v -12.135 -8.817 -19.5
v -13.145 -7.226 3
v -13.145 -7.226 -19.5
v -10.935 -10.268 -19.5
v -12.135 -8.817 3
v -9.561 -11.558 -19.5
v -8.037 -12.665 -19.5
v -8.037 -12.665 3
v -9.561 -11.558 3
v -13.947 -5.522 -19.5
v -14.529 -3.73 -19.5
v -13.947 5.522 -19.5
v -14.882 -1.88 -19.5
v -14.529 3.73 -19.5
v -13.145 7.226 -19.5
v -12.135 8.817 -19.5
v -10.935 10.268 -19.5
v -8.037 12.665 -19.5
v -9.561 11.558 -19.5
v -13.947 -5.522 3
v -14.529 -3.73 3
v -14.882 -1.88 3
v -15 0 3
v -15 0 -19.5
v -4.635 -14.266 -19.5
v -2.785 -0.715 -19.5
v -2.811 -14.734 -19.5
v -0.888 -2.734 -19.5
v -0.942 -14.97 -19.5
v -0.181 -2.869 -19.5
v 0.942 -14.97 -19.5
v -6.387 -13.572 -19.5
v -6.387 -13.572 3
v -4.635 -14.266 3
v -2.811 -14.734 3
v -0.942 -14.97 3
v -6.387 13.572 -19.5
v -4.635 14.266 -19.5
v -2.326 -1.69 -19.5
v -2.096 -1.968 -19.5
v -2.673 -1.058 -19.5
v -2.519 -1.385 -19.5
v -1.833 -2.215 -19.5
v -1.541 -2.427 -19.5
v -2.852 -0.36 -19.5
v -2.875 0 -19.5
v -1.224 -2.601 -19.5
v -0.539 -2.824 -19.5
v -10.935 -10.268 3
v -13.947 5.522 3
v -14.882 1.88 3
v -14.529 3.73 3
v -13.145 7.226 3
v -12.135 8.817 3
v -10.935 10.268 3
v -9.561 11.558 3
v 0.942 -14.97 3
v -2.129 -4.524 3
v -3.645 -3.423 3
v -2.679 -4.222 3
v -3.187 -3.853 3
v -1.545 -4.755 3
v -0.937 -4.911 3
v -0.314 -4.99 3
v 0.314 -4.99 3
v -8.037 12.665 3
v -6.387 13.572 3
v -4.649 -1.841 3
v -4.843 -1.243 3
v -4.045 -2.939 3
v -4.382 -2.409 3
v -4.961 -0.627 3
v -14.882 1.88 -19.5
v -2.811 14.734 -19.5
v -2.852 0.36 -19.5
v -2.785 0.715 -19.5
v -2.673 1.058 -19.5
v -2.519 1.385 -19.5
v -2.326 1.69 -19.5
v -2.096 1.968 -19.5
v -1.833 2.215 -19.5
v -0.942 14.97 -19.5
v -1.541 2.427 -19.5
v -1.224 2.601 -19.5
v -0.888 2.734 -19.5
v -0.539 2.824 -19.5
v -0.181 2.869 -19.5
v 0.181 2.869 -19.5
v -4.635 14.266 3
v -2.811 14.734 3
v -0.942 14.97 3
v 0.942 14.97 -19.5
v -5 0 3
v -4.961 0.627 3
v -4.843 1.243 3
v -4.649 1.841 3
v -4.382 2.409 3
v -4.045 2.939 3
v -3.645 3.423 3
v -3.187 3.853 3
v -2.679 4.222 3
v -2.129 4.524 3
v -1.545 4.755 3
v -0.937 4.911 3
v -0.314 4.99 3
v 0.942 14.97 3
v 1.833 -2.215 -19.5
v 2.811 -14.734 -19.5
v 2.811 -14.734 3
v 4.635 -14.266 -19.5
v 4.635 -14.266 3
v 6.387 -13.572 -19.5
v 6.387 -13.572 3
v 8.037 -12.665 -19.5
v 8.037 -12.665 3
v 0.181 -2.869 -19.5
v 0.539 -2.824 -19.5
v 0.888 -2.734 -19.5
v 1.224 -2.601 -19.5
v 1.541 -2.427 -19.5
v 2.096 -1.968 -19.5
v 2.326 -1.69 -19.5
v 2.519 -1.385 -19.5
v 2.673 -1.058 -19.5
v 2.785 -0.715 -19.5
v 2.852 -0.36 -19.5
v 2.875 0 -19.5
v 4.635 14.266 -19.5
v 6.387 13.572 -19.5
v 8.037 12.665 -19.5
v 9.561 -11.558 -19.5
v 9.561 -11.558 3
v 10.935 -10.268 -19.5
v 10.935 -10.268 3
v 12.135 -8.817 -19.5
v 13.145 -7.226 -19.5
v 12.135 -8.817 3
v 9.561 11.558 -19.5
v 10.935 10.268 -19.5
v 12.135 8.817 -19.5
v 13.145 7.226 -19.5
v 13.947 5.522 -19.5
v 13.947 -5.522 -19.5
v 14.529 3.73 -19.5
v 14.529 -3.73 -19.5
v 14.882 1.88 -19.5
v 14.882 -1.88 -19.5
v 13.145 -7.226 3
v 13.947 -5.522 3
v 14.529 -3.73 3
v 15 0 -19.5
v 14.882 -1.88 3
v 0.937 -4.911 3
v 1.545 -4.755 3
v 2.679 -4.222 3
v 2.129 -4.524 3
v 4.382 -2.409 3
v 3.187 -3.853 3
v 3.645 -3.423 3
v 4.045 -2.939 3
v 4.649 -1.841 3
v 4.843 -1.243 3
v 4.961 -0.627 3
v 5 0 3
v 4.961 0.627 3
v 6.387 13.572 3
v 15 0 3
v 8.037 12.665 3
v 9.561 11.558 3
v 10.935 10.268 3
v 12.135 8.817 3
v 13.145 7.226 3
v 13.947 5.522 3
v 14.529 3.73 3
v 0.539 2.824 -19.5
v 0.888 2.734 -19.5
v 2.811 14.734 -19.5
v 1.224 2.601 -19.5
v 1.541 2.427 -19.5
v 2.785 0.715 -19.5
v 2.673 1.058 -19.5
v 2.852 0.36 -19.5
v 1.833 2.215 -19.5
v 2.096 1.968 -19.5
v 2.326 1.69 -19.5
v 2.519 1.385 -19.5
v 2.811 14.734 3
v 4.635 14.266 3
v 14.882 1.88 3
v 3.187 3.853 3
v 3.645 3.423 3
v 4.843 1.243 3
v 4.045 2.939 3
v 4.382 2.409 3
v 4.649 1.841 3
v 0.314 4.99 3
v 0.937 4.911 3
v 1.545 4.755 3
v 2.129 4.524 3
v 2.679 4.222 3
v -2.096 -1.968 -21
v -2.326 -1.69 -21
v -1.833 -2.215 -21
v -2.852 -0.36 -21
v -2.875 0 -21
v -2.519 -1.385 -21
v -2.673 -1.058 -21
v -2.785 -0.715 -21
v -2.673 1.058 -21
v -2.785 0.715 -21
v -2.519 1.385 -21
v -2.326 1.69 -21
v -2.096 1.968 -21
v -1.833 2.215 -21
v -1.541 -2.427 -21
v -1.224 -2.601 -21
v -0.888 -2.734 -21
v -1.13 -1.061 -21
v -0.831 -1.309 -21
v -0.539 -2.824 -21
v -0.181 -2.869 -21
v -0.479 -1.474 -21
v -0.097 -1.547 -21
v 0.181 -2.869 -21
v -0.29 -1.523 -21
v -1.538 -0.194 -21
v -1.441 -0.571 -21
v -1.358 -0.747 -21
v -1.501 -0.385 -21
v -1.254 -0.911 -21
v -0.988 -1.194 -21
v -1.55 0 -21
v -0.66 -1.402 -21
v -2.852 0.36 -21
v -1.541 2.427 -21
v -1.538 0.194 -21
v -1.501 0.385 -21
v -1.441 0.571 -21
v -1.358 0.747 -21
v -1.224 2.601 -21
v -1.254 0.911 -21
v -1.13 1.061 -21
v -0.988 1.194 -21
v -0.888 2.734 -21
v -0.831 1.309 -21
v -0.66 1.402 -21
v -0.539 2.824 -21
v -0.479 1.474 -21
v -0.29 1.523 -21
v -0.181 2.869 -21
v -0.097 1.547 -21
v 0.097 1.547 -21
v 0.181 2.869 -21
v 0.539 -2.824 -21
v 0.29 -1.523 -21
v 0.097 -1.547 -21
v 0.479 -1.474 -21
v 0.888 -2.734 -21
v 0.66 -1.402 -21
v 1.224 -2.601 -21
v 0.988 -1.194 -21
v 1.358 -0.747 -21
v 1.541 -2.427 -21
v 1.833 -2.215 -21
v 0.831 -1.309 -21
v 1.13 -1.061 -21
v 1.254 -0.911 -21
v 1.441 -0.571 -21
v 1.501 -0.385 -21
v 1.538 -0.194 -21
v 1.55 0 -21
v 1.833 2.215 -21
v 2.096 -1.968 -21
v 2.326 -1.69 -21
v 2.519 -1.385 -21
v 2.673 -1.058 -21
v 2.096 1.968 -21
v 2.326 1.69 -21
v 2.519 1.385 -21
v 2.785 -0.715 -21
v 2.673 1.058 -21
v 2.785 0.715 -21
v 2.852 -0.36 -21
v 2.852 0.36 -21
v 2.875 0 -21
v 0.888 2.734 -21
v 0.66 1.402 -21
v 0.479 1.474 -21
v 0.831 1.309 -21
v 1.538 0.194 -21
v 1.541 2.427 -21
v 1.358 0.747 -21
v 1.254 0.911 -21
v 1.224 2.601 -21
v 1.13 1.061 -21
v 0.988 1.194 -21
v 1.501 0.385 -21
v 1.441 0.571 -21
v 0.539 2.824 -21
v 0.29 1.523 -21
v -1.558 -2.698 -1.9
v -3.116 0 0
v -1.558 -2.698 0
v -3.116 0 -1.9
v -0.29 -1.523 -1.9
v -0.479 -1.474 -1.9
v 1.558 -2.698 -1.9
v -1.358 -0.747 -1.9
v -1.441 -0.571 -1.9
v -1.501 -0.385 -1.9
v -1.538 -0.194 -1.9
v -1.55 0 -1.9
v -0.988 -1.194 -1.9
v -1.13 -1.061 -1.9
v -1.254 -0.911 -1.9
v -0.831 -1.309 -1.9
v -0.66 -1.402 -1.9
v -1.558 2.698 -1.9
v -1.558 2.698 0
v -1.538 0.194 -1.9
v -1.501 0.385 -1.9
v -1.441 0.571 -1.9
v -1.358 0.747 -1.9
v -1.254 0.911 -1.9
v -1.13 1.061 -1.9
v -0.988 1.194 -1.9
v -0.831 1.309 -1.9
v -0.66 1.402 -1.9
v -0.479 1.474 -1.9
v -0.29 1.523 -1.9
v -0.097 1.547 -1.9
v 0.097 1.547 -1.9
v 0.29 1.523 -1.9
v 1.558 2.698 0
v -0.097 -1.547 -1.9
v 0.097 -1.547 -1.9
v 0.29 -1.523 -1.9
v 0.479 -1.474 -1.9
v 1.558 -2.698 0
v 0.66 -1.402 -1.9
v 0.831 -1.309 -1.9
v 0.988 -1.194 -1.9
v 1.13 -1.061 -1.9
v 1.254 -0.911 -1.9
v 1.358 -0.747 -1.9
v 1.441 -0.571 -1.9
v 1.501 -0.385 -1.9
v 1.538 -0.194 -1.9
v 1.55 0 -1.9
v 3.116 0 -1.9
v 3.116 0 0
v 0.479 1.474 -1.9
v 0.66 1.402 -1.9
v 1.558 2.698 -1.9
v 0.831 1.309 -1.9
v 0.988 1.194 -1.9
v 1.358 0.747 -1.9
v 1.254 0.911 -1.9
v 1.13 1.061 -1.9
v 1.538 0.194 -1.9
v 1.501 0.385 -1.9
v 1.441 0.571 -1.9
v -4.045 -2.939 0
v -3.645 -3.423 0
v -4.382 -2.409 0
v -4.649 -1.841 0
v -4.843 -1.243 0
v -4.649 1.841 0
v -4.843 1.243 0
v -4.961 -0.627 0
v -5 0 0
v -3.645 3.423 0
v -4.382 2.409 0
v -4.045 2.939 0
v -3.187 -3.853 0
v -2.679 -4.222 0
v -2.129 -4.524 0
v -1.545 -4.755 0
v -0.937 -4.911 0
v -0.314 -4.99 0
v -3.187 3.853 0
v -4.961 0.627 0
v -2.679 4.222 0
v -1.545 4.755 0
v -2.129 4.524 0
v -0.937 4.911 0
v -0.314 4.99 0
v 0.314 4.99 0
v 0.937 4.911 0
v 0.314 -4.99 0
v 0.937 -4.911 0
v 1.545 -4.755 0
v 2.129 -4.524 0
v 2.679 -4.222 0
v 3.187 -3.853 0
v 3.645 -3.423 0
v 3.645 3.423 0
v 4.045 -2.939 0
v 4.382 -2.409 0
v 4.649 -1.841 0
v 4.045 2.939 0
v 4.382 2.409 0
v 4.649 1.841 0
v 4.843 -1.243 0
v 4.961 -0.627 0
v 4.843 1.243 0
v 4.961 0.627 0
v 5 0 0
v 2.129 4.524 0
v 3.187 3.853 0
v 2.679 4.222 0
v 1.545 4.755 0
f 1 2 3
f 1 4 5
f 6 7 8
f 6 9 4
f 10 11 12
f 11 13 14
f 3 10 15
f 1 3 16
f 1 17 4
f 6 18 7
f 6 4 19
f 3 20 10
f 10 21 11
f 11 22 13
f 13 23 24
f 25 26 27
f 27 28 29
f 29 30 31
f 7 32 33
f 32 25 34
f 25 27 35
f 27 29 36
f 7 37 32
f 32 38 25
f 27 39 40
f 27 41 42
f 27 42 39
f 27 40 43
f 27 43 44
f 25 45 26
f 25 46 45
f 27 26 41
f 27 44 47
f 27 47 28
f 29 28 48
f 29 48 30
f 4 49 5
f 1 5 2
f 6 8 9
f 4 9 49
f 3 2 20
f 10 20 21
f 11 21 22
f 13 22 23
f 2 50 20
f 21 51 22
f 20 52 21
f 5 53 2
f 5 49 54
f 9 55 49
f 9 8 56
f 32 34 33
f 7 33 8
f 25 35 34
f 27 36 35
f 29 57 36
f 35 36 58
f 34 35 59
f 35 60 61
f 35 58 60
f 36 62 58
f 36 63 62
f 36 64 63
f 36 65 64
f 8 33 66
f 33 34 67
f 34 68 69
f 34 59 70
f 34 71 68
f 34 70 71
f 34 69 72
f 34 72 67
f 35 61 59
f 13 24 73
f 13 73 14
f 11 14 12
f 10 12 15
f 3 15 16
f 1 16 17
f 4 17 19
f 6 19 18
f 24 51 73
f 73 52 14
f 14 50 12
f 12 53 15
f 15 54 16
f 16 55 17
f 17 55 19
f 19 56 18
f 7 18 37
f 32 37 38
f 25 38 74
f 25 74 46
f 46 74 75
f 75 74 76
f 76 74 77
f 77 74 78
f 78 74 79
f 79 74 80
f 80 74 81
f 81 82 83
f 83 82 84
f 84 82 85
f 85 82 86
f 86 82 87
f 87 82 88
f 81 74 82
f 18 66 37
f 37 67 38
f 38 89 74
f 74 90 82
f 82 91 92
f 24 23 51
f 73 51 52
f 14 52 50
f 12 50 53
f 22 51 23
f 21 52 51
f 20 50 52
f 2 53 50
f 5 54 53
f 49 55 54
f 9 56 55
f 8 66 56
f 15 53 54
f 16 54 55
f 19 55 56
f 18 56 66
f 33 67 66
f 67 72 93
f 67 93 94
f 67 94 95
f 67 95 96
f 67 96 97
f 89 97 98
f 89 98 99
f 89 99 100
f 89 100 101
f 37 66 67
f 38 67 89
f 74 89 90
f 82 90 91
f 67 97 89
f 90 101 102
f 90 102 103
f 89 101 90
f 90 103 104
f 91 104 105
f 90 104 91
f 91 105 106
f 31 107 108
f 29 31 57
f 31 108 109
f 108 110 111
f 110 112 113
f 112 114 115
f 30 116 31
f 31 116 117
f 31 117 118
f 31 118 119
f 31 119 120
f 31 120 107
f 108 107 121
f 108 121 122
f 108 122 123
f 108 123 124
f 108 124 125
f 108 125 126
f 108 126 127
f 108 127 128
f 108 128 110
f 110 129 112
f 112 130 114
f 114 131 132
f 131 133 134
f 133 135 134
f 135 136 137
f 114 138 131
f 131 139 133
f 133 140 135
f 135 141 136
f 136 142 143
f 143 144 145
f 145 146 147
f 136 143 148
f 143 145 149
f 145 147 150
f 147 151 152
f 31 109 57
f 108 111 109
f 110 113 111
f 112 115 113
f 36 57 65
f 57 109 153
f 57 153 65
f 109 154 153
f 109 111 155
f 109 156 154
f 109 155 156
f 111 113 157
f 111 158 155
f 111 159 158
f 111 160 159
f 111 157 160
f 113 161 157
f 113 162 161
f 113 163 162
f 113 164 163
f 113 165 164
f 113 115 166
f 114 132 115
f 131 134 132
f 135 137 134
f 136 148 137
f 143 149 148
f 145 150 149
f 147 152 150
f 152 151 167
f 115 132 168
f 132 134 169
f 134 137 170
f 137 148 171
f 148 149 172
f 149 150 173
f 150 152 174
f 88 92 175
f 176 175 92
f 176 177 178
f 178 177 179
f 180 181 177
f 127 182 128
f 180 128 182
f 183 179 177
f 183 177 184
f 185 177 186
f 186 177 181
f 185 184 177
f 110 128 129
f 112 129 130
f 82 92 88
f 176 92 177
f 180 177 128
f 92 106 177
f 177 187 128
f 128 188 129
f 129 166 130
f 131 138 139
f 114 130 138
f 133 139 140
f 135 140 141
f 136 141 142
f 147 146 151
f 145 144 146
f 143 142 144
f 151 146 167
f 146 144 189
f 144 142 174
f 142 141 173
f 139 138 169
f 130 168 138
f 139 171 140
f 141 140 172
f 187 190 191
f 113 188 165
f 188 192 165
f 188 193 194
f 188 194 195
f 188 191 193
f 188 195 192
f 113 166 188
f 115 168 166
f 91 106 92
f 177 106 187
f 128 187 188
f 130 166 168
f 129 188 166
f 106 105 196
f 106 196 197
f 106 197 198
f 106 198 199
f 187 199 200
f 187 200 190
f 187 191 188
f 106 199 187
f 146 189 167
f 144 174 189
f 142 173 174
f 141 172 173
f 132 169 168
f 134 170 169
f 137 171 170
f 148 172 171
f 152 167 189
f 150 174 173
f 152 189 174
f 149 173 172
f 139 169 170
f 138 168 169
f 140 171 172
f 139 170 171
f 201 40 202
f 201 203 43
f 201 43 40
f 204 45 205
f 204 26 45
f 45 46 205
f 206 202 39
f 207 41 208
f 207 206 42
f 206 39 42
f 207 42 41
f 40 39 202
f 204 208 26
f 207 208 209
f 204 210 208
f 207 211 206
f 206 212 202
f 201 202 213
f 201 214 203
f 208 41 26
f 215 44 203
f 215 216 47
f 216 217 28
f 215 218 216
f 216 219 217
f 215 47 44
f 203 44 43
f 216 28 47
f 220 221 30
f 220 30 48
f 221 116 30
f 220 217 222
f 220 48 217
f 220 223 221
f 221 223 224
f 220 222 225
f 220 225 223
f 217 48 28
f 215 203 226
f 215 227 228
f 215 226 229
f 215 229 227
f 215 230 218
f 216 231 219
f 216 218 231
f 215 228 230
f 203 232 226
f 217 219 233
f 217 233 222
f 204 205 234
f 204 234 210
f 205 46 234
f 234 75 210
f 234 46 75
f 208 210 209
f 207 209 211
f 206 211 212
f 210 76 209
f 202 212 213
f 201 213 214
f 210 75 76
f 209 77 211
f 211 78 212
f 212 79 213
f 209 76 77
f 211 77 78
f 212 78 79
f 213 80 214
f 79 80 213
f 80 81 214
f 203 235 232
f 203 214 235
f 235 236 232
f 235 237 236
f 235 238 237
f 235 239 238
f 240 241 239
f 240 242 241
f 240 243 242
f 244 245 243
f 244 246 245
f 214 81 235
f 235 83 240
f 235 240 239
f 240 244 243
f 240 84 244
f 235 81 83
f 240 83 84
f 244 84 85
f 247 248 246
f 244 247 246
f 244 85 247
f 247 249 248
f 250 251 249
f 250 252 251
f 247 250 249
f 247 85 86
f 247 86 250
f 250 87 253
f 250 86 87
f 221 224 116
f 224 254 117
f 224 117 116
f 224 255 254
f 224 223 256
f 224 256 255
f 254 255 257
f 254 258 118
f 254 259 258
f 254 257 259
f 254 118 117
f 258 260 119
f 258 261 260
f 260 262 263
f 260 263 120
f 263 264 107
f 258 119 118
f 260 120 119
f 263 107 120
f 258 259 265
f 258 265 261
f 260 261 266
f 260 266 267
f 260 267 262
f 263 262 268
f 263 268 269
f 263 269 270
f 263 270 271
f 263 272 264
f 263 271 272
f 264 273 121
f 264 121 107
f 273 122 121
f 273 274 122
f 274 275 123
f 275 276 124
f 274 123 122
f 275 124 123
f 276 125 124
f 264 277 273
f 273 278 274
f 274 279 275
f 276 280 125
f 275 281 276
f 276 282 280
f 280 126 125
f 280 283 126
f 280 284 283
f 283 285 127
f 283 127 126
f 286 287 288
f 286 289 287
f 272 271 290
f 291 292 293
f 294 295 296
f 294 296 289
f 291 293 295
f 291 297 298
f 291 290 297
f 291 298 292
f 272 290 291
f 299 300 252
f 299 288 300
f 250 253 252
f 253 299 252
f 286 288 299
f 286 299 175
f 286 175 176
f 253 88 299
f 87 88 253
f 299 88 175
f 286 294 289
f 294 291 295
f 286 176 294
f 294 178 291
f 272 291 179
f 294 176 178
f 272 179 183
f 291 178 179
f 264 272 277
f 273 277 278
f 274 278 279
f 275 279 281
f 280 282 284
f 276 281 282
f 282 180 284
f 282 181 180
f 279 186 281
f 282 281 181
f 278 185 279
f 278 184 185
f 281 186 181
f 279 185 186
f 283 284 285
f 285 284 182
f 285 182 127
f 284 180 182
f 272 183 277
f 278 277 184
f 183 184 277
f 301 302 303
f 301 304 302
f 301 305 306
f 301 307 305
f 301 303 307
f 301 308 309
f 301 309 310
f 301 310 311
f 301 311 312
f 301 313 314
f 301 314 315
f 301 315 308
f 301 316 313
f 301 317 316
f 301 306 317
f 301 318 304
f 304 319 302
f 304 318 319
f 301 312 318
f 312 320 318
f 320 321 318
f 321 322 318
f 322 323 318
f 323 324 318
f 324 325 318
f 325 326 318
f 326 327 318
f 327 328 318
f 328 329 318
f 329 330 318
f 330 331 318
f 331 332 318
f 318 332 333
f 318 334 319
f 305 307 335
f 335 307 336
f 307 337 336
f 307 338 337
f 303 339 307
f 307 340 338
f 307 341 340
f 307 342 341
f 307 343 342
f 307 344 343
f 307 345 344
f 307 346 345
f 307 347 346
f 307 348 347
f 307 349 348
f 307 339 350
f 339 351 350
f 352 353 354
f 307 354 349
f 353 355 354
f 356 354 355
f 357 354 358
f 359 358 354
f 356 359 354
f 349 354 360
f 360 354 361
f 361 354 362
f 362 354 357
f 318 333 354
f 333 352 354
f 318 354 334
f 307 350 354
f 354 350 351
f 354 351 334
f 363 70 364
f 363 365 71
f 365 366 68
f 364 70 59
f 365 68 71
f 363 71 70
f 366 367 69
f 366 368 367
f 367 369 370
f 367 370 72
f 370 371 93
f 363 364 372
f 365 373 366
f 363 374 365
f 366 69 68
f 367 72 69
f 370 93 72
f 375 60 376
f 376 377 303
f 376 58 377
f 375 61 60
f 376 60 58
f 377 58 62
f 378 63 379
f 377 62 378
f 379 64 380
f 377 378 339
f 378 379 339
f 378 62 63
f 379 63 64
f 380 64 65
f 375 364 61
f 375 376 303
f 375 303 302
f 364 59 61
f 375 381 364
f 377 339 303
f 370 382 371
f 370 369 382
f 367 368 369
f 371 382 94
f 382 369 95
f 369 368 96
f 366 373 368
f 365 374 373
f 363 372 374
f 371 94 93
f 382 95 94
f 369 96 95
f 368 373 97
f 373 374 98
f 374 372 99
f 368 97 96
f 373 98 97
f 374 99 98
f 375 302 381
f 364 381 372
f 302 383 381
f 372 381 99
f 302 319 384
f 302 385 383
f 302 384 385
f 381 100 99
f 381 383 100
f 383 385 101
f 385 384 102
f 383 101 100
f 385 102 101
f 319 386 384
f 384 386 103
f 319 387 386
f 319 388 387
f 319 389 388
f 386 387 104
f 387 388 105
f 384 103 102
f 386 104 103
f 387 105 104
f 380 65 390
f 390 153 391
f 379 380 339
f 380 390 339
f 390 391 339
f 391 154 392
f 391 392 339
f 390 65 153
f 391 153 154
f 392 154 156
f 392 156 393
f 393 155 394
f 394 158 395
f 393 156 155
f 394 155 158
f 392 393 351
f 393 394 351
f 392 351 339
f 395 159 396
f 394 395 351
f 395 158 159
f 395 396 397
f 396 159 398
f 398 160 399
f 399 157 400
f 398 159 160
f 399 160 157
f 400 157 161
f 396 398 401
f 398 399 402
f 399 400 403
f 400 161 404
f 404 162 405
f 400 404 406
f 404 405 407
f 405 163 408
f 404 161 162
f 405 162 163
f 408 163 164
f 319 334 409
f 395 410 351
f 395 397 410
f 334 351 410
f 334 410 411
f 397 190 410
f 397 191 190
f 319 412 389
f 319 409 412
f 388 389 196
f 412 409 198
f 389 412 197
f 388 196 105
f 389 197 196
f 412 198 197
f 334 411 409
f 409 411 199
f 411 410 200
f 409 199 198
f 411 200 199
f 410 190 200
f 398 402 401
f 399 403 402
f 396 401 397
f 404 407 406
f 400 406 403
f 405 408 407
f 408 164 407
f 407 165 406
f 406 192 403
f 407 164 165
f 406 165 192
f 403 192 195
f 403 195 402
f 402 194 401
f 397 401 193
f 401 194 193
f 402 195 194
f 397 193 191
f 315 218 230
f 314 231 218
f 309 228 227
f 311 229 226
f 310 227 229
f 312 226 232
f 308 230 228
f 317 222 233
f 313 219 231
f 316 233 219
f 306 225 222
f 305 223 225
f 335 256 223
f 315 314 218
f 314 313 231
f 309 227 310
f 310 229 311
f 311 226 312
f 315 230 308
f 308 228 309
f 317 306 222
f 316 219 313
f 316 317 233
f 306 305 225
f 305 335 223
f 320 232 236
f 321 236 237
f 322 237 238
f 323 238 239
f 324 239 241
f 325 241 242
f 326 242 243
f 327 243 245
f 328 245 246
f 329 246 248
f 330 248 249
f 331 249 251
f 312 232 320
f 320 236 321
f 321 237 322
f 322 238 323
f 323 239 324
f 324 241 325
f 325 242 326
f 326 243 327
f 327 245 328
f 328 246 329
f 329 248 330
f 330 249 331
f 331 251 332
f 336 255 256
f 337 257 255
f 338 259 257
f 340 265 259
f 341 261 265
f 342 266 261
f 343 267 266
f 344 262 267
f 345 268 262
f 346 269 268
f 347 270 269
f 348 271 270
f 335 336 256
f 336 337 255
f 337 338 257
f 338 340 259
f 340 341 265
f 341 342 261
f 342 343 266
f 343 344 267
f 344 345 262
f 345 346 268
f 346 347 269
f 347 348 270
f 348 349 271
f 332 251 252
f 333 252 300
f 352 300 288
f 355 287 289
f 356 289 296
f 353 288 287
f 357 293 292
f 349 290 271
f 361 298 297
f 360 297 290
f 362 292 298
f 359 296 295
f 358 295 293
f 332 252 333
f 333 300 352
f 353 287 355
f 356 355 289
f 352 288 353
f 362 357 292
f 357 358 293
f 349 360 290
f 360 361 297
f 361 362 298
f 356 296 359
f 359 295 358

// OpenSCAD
$fn = 50;

difference() {
	union() {
		translate(v = [0, 0, -19.5]) {
			cylinder(h = 22.5, r = 15.0);
		}
		#translate(v = [0, 0, -21.0]) {
			cylinder(h = 21, r = 2.875);
		}
	}
	union() {
		translate(v = [0, 0, 0]) {
			rotate(a = [0, 0, 0]) {
				difference() {
					union() {
						translate(v = [0, 0, -1.9]) {
							linear_extrude(height = 1.9) {
								polygon(points = [[3.1158, 0.0], [1.5579000000000005, 2.698361953111554], [-1.5578999999999994, 2.6983619531115544], [-3.1158, 3.815754496783323e-16], [-1.5579000000000014, -2.6983619531115535], [1.557899999999998, -2.6983619531115552]]);
							}
						}
					}
					union();
				}
			}
		}
		#cylinder(h = 3, r = 5.0);
		#translate(v = [0, 0, -100.0]) {
			cylinder(h = 200, r = 1.55);
		}
	}
}
